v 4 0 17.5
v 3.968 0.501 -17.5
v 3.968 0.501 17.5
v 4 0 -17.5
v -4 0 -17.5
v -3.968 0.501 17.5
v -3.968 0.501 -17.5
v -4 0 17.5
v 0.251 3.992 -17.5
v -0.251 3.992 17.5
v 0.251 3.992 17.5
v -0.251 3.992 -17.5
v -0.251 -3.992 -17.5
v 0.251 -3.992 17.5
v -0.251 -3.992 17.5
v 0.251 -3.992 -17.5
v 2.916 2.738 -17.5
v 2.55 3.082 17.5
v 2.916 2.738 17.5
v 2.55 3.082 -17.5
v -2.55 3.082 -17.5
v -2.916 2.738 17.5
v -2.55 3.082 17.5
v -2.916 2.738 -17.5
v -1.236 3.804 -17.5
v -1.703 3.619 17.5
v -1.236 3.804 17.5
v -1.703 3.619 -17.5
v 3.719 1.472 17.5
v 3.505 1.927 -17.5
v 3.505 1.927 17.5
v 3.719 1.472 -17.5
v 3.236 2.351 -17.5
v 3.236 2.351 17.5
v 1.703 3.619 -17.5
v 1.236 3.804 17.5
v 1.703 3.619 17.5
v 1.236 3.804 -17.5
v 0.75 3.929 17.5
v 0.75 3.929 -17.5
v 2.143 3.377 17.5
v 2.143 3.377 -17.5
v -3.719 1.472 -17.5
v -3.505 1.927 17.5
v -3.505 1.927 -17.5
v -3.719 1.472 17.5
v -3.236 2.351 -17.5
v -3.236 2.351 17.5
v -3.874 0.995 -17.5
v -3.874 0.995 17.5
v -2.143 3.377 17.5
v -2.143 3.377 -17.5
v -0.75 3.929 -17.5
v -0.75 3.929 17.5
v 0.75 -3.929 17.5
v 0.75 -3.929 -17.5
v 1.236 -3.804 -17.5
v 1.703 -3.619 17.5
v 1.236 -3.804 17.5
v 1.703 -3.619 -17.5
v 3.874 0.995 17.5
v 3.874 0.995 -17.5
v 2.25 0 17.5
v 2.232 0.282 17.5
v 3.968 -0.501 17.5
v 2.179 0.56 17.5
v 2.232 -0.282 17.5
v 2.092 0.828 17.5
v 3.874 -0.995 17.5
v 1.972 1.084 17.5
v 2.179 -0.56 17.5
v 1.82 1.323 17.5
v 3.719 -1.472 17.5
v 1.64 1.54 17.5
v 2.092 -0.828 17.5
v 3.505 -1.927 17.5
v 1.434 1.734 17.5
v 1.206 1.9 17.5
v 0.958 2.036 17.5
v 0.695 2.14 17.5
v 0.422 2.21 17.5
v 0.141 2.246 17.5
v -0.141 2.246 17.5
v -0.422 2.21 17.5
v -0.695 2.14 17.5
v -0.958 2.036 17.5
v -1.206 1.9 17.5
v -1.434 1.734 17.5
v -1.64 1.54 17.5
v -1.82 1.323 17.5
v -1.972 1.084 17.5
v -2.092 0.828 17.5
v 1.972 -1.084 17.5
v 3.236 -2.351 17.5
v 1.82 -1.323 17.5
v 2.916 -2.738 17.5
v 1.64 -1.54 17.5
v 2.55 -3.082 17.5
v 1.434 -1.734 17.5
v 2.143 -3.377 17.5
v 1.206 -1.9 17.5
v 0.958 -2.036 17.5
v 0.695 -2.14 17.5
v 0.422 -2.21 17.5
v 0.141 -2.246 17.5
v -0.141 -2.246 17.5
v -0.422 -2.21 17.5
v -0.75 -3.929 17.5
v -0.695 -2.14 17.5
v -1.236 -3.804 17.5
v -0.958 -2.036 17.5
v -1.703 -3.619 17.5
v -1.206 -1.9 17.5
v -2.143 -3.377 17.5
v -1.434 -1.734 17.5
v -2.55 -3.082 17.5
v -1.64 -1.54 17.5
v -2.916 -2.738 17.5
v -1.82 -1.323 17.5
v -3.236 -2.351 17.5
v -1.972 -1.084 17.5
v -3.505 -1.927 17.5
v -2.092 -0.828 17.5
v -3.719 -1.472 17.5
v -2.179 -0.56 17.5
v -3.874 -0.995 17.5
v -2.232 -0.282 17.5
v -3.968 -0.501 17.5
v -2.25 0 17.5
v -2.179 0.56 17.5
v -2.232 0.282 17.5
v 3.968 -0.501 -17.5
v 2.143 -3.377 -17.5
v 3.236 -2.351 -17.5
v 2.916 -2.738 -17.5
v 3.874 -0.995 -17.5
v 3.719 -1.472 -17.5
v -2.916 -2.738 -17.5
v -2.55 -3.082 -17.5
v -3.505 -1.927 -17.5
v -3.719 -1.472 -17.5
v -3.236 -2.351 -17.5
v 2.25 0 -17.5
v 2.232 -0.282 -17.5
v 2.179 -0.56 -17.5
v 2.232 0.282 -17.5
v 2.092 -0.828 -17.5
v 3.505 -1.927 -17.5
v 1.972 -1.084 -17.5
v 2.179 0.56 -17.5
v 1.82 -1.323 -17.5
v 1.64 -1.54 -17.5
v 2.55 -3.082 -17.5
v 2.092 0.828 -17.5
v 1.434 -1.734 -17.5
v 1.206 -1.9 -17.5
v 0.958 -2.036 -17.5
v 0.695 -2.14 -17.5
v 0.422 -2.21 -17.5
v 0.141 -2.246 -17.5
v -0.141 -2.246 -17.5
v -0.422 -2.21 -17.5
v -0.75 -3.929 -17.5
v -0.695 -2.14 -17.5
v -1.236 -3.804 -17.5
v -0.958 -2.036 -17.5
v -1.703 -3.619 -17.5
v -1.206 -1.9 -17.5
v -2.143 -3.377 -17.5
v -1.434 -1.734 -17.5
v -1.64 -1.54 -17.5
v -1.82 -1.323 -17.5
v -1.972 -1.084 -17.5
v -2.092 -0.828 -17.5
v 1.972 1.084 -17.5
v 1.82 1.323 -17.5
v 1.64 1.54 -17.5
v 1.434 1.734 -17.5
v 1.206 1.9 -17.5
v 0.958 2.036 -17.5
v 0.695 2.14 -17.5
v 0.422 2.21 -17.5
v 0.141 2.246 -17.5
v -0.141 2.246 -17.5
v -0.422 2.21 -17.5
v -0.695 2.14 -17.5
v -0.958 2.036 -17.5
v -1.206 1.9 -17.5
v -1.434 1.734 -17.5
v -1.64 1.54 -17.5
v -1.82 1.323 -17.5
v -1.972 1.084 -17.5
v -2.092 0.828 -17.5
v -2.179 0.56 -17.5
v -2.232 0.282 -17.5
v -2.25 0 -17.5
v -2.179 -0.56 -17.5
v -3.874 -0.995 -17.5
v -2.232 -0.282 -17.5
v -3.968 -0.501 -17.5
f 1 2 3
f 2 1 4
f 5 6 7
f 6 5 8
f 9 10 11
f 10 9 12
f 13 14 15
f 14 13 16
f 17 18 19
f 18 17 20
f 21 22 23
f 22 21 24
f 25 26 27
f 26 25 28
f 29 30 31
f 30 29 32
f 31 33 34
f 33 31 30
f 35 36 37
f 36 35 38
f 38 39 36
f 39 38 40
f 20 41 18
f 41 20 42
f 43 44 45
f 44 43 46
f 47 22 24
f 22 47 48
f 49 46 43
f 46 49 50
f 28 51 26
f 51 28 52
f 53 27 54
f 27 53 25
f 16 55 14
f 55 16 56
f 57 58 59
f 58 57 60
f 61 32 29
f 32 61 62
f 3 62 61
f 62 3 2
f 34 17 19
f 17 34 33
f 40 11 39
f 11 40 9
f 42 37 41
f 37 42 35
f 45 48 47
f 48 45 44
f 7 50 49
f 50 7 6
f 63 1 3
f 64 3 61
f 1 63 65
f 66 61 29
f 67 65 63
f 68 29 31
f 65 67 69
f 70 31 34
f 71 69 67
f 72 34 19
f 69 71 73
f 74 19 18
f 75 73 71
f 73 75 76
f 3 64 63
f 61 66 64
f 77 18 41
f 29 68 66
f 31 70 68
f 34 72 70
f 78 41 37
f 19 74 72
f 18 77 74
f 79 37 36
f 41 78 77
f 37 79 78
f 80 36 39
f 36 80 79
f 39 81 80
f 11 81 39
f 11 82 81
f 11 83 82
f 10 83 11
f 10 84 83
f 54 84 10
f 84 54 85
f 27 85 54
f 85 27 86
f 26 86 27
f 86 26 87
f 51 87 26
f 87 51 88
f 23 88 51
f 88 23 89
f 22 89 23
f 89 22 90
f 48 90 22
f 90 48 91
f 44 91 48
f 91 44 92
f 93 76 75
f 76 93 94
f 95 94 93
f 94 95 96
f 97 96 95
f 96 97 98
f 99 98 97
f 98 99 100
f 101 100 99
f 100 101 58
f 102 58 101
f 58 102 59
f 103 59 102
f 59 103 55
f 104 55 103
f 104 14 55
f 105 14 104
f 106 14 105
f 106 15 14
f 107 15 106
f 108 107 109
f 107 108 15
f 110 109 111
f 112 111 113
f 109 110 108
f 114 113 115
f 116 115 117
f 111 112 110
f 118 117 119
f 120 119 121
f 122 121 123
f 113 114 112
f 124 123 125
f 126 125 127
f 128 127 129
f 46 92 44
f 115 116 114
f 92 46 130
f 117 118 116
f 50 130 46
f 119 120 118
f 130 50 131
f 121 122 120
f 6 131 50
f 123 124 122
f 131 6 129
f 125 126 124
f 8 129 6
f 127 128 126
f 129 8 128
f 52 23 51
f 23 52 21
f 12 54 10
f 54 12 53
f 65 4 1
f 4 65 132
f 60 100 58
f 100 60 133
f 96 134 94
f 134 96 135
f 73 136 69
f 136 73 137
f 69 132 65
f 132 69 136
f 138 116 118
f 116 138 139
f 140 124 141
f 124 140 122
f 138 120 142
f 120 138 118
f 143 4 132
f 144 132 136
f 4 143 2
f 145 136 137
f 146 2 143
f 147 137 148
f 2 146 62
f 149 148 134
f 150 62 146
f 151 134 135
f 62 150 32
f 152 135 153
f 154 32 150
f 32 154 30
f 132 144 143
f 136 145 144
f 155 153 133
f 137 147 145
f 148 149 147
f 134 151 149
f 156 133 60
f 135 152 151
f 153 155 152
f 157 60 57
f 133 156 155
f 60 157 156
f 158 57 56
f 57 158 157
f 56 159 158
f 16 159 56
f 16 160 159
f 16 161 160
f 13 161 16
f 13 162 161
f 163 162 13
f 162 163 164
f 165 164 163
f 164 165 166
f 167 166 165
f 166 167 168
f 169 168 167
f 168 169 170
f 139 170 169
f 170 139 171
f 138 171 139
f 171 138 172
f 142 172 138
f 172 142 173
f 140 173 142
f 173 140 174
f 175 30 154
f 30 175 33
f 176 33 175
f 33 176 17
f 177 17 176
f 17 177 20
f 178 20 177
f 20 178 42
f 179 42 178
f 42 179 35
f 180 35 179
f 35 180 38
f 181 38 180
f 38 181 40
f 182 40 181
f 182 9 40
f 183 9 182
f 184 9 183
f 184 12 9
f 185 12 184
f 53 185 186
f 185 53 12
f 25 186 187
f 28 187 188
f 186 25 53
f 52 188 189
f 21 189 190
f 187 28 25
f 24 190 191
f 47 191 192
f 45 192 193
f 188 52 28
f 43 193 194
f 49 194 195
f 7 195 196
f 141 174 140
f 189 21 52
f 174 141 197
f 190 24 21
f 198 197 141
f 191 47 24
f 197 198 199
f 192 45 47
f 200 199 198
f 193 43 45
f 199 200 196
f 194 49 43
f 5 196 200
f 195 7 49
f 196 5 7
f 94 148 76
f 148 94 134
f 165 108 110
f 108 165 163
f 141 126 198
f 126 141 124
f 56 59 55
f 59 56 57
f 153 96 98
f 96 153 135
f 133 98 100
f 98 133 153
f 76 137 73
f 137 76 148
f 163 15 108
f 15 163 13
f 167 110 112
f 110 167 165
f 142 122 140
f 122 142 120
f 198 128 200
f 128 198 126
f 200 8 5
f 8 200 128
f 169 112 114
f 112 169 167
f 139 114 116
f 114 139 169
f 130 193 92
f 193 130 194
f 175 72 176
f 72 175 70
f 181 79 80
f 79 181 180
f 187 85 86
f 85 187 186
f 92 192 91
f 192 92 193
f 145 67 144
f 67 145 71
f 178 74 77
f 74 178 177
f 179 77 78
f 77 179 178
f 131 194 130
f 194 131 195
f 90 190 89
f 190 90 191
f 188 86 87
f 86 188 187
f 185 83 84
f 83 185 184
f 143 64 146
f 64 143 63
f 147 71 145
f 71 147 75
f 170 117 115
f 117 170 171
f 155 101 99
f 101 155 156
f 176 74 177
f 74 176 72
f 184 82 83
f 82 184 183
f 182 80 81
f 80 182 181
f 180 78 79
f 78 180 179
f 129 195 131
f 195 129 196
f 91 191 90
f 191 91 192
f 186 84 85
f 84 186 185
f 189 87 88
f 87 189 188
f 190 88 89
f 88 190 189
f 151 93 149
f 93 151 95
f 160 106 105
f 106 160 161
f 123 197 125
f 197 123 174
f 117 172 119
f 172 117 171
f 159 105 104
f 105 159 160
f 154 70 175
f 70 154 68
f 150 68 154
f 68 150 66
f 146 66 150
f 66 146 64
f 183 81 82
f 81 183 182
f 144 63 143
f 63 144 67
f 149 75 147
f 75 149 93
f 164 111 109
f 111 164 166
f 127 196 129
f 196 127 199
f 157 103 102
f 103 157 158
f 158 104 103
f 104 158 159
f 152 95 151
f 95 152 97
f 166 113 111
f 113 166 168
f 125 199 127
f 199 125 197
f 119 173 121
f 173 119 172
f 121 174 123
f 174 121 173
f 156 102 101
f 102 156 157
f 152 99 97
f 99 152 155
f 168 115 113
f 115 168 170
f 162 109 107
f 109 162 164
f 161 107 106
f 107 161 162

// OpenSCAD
$fn = 50;


difference() {
	union() {
		translate(v = [0, 0, -17.5000000000]) {
			cylinder(h = 35, r = 4.0000000000);
		}
	}
	union() {
		translate(v = [0, 0, -100.0000000000]) {
			cylinder(h = 200, r = 2.2500000000);
		}
	}
}
